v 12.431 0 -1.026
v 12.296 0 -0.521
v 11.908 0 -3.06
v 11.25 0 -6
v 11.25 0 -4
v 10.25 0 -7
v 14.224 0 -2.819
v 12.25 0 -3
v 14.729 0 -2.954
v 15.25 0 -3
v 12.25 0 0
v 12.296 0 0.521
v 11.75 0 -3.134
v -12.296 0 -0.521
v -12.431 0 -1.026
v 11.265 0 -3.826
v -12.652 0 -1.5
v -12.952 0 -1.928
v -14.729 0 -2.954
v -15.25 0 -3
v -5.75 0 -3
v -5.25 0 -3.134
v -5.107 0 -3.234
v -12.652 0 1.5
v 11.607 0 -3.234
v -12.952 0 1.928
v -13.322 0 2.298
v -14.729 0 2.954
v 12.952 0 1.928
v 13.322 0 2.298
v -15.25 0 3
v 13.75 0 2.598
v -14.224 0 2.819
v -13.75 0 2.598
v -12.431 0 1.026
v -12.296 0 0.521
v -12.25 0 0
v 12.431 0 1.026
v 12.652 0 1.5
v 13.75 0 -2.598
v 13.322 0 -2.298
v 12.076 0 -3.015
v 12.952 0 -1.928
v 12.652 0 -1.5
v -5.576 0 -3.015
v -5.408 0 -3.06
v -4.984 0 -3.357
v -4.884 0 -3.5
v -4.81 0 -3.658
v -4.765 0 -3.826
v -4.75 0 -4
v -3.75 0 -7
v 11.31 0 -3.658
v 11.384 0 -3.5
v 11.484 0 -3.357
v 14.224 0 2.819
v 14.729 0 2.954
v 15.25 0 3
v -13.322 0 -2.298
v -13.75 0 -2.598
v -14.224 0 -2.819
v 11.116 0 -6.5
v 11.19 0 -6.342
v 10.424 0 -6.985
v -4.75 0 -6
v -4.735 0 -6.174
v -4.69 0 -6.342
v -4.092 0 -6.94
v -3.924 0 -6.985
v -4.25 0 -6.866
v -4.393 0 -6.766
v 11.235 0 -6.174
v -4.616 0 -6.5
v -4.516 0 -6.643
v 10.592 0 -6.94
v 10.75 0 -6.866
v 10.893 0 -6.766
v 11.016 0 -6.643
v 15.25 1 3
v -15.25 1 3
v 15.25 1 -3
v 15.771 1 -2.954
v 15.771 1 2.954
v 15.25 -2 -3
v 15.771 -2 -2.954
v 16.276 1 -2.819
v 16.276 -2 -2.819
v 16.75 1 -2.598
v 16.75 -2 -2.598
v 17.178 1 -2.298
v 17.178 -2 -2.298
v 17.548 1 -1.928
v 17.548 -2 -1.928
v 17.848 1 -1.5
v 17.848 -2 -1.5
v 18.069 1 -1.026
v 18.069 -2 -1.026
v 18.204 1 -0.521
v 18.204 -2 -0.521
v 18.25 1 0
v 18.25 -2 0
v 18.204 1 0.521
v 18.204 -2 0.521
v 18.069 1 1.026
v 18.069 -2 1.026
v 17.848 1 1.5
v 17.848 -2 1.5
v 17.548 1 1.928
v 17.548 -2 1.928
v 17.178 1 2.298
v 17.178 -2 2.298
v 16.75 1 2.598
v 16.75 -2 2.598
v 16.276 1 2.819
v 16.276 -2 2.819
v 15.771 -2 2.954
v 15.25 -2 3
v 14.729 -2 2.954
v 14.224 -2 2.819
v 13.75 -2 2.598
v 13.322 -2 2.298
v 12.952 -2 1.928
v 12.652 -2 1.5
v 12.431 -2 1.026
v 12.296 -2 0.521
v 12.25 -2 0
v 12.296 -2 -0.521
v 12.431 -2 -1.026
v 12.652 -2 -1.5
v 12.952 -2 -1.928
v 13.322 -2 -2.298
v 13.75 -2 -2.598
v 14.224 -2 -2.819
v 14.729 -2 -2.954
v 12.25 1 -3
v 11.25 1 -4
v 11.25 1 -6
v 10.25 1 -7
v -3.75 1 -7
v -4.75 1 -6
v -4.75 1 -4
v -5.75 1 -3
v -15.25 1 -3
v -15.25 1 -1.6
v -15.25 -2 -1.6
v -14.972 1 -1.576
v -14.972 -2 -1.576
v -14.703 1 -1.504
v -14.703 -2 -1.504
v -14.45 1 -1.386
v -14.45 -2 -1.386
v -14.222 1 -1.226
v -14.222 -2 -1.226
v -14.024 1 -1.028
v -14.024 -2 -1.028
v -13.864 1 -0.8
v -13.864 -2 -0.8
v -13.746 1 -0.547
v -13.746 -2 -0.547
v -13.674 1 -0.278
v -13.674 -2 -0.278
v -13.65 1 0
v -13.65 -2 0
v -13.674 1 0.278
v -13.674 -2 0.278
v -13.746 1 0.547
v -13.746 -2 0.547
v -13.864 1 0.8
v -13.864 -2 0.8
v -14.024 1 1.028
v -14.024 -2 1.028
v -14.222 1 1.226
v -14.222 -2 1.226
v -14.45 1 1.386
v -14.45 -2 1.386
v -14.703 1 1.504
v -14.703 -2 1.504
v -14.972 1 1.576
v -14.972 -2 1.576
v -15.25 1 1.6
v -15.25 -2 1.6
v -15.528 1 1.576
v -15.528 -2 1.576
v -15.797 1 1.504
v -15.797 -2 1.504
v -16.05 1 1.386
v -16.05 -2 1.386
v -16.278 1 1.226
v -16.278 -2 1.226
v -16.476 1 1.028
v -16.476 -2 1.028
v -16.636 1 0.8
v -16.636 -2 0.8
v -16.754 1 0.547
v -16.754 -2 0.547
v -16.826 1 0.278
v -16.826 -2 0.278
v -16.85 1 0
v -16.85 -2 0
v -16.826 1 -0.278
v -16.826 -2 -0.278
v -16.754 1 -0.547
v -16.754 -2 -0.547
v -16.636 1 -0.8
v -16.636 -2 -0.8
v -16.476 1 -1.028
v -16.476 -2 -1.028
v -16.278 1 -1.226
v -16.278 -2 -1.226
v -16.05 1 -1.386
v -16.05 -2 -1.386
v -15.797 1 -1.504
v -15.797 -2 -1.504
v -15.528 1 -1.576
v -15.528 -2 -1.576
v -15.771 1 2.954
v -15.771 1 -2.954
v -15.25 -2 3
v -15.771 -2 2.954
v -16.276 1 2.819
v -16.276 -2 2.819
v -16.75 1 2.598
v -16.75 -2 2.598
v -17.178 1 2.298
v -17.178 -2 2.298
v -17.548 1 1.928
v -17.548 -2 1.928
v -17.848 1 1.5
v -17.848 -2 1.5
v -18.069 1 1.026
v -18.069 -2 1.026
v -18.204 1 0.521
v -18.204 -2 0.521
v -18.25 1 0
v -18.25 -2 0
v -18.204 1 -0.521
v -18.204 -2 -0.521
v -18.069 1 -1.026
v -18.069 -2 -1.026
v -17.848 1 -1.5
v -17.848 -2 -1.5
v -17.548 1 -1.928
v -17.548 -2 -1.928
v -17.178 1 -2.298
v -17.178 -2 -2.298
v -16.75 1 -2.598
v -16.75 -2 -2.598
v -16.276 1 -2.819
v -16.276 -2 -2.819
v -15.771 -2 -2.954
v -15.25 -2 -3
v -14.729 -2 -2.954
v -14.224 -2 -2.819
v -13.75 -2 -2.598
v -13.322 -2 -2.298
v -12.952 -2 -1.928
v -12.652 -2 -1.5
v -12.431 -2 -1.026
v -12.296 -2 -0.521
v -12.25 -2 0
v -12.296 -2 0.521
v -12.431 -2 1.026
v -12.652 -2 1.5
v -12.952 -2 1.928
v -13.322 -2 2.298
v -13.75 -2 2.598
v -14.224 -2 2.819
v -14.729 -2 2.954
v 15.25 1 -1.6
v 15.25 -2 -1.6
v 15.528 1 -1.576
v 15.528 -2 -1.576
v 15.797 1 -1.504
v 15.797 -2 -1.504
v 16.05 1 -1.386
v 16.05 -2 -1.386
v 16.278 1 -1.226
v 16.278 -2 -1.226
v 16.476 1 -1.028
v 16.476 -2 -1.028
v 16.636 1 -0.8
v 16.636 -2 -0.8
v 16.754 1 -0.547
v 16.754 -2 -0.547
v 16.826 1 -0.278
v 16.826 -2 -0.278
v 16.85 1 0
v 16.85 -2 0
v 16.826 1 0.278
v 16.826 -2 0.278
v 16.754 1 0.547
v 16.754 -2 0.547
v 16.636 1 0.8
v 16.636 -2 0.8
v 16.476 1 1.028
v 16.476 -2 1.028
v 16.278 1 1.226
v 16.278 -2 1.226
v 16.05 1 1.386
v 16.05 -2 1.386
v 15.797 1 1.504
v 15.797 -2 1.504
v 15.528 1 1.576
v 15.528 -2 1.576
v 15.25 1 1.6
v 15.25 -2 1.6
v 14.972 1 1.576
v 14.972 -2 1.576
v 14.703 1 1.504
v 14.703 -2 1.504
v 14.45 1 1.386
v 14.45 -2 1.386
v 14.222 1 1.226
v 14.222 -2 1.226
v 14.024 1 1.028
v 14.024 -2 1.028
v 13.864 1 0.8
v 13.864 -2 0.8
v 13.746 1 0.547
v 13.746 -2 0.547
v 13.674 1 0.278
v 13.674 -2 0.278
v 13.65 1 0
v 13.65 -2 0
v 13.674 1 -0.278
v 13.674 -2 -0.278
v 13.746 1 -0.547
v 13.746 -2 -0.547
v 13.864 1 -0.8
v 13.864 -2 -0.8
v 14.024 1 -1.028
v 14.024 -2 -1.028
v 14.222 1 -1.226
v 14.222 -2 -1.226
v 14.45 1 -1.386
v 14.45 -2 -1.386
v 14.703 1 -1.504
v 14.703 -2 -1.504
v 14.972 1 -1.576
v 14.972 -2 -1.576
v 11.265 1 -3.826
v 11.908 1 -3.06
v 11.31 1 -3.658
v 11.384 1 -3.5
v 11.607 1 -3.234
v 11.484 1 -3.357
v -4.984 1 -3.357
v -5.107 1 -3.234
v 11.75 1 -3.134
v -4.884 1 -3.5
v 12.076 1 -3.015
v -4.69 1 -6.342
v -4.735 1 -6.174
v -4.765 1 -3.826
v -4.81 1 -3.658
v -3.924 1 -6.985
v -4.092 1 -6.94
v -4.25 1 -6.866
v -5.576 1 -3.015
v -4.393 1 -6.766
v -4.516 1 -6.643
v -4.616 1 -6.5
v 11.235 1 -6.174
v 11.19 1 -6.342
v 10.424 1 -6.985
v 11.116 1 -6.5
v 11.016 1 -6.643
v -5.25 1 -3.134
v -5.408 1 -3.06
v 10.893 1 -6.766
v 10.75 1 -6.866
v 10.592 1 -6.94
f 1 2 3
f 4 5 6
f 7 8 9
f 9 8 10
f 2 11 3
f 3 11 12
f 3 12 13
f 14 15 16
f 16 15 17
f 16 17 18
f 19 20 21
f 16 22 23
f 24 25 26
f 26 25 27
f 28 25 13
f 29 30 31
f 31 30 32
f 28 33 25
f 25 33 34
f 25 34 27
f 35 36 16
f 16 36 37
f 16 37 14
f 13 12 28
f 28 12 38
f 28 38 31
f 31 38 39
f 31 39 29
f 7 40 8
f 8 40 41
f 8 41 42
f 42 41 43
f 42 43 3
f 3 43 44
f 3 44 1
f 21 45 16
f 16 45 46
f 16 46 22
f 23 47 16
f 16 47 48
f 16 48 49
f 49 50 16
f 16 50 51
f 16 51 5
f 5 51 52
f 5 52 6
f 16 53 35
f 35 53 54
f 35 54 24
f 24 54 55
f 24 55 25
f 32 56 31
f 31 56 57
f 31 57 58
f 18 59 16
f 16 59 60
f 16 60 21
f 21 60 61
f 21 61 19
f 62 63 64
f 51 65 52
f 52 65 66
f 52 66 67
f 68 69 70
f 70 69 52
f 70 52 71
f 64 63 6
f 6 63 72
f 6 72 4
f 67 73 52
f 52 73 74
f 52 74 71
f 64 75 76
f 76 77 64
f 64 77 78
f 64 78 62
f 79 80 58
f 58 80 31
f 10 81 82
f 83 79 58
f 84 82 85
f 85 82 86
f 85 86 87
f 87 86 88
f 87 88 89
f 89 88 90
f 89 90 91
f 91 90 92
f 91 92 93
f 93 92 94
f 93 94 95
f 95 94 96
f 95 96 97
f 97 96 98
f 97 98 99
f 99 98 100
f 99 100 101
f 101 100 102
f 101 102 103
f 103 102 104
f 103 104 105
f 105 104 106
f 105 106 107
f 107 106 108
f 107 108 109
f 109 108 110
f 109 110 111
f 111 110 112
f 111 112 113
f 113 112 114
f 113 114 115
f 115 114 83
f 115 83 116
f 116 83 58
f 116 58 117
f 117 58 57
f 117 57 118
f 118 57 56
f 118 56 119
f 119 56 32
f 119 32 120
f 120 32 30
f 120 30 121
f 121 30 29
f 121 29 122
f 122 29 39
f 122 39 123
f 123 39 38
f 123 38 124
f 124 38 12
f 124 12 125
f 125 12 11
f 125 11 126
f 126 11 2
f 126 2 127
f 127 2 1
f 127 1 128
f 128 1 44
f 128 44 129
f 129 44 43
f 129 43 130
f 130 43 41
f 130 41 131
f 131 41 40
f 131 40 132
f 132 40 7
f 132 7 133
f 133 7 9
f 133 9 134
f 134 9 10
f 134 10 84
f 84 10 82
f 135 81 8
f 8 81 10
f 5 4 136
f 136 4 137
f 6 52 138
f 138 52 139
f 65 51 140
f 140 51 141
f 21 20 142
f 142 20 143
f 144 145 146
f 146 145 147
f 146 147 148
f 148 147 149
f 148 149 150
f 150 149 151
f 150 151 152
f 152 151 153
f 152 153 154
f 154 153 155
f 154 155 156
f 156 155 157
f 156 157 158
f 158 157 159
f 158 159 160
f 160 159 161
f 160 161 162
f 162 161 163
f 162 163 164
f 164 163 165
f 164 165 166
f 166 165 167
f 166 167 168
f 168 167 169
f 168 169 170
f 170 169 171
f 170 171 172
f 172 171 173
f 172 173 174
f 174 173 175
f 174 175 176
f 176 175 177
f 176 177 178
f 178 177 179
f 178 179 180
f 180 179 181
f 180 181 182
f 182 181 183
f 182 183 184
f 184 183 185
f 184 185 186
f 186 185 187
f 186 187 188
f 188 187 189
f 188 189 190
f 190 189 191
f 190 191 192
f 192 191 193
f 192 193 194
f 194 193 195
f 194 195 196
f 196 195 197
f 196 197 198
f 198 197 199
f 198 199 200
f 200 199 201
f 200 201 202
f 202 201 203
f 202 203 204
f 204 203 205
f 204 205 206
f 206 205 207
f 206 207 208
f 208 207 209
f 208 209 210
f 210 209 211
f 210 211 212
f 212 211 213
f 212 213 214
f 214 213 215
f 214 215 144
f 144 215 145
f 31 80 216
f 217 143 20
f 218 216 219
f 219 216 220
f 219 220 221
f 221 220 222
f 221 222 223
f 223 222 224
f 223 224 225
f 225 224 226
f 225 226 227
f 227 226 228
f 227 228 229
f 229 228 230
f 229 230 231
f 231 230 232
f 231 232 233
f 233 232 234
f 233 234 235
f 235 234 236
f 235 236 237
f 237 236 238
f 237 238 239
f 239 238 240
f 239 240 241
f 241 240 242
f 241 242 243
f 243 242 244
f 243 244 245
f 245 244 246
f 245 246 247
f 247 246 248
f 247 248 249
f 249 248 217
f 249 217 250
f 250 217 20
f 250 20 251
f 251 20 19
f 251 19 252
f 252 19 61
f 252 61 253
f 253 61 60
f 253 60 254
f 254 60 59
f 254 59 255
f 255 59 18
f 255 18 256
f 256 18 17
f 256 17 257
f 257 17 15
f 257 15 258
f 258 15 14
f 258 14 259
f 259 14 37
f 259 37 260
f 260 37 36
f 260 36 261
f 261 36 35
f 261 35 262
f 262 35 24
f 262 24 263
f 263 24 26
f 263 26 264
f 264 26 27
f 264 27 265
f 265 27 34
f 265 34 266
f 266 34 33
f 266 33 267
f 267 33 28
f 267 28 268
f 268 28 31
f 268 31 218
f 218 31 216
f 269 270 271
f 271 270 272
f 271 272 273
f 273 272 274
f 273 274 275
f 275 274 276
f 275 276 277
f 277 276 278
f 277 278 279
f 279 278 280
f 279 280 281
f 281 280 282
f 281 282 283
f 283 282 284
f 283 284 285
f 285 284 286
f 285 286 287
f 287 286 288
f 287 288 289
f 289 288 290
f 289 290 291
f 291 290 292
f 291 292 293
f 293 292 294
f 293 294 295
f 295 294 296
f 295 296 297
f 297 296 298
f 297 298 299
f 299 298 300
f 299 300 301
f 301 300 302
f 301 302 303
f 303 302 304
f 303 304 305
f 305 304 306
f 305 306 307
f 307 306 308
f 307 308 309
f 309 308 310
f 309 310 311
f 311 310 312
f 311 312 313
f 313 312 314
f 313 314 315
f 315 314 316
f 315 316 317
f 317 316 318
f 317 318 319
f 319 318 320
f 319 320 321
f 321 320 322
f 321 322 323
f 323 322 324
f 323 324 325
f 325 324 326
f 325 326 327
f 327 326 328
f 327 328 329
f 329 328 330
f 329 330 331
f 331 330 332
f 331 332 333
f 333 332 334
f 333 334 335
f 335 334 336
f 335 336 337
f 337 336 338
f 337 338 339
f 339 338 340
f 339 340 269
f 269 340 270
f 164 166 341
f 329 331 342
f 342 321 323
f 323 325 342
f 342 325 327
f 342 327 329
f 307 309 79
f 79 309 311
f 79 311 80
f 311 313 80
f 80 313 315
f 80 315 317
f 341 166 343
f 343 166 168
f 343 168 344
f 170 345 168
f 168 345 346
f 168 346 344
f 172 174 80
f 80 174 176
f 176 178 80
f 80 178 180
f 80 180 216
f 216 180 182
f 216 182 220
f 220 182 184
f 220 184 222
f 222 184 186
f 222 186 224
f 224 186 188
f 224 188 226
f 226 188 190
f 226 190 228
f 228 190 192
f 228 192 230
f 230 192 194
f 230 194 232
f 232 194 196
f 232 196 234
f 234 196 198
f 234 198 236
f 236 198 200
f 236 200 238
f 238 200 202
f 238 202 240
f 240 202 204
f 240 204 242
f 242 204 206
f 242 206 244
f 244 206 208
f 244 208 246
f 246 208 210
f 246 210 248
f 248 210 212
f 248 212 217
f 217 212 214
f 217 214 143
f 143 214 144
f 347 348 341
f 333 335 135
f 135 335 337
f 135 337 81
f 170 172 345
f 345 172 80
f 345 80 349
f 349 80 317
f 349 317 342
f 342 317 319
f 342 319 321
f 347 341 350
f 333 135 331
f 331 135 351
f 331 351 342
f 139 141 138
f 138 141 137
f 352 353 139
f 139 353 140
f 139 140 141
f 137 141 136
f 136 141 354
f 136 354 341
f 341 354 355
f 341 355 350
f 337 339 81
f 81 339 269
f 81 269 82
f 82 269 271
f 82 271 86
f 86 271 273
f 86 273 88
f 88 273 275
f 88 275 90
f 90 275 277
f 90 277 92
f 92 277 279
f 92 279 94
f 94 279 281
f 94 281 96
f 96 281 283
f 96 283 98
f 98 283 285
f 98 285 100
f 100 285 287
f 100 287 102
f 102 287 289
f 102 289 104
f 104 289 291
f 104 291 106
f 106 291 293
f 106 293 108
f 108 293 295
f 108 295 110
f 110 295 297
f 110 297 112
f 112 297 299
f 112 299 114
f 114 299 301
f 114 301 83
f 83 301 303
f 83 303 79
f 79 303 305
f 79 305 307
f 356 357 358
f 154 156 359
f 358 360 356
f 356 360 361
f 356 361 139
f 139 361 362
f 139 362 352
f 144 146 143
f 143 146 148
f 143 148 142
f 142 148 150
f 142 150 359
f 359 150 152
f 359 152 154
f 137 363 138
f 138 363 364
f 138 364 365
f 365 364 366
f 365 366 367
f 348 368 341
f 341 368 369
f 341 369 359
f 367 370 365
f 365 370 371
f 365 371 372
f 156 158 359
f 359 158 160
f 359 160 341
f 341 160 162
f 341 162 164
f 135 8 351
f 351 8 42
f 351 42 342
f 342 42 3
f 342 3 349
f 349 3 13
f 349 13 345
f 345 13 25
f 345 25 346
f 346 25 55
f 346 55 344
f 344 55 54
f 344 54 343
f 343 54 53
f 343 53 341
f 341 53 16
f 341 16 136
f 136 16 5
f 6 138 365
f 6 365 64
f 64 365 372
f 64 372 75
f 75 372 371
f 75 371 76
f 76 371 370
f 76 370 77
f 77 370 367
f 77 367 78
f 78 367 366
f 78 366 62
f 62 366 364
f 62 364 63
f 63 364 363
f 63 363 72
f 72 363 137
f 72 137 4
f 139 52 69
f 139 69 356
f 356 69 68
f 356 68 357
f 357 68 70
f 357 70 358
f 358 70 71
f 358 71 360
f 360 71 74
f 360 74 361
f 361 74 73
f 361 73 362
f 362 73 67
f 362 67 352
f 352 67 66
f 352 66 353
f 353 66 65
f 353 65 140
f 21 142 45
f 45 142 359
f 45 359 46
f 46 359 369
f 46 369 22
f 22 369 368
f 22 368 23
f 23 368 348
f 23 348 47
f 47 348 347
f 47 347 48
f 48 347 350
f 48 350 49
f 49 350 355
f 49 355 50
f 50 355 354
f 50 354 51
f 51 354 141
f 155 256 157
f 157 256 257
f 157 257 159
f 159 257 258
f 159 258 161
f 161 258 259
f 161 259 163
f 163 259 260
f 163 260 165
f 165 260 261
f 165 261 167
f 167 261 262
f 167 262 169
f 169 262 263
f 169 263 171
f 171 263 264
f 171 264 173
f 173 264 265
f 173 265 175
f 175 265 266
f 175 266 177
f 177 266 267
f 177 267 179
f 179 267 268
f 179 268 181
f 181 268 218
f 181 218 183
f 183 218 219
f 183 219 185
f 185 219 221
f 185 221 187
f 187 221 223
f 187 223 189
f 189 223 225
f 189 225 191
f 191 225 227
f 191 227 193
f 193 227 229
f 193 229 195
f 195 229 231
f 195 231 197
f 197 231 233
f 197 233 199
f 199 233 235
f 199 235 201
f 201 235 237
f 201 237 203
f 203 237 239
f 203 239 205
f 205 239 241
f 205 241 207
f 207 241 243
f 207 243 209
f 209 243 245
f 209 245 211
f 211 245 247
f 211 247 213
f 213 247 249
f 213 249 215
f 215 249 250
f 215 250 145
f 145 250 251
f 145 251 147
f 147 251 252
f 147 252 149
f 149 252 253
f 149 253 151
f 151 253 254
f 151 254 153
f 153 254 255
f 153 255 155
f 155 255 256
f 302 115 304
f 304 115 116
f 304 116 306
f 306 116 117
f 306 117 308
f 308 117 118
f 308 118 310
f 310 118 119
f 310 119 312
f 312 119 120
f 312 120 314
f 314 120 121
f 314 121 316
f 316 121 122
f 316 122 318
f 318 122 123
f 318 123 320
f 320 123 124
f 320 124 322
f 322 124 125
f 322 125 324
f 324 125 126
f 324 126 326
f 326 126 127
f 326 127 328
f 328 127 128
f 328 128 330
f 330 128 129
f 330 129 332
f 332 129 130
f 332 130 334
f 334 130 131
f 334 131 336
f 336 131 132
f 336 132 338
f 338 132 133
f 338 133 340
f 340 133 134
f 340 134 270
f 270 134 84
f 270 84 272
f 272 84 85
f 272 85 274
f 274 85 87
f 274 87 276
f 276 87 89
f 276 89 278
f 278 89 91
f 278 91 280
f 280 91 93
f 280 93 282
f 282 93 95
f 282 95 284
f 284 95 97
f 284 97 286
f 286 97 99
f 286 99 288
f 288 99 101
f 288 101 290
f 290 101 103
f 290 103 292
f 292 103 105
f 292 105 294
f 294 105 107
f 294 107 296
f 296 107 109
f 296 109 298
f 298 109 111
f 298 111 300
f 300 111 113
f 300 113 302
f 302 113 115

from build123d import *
from build123d.topology import SkipClean

# Parameters (mm, degrees)
SKETCH1_W           = 16
SKETCH1_H           = 6
SKETCH1_H_2         = 4
SKETCH1_R           = 1.6
BOSS_EXTRUDE1_DEPTH = 1
FILLET1_R           = 1
BOSS_EXTRUDE2_START = 2
SKETCH2_R           = 3
SKETCH2_R_2         = 1.6
BOSS_EXTRUDE2_DEPTH = 2


with BuildPart() as part:
    # Sketch1 → Boss-Extrude1 (new body)
    # profile 1 of 4: a face of its own
    with BuildSketch(Plane(origin=(0, 0, 0), x_dir=(1, 0, 0), z_dir=(0, 1, 0))):
        with Locations((3.25, 0)):
            Rectangle(SKETCH1_W, SKETCH1_H)
    # profile 2 of 4: a face of its own
    with BuildSketch(Plane(origin=(0, 0, 0), x_dir=(1, 0, 0), z_dir=(0, 1, 0))):
        with Locations((3.25, 5)):
            Rectangle(SKETCH1_W, SKETCH1_H_2)
    # profile 3 of 4: a face of its own
    with BuildSketch(Plane(origin=(0, 0, 0), x_dir=(1, 0, 0), z_dir=(0, 1, 0))):
        with BuildLine():
            Line((-4.75, 3), (-15.25, 3))
            ThreePointArc((-15.25, 3), (-18.25, 0), (-15.25, -3))
            Line((-15.25, -3), (-4.75, -3))
            Line((-4.75, -3), (-4.75, 3))
        make_face()
        with Locations(Location((-15.25, 0, 0), (0, 0, 270))):
            Circle(SKETCH1_R, mode=Mode.SUBTRACT)
    # profile 4 of 4: a face of its own
    with BuildSketch(Plane(origin=(0, 0, 0), x_dir=(1, 0, 0), z_dir=(0, 1, 0))):
        with BuildLine():
            Line((15.25, 3), (11.25, 3))
            Line((11.25, 3), (11.25, -3))
            Line((11.25, -3), (15.25, -3))
            ThreePointArc((15.25, -3), (18.25, 0), (15.25, 3))
        make_face()
        with Locations(Location((15.25, 0, 0), (0, 0, 270))):
            Circle(SKETCH1_R, mode=Mode.SUBTRACT)
    extrude(amount=BOSS_EXTRUDE1_DEPTH)

    # Fillet1
    fillet1_edges = [part.edges().sort_by_distance(p)[0] for p in [
        (-4.75, 0.5, -3),
        (-4.75, 0.5, -7),
        (11.25, 0.5, -7),
        (11.25, 0.5, -3),
    ]]
    fillet(fillet1_edges, radius=FILLET1_R)

    # Sketch2 → Boss-Extrude2 (add)
    # profile 1 of 2: a face of its own
    with SkipClean():  # the faces are left unmerged after this step: merging them gives an invalid solid
        with BuildSketch(Plane.XZ.offset(BOSS_EXTRUDE2_START)):
            with Locations(Location((-15.25, 0, 0), (0, 0, 270))):
                Circle(SKETCH2_R)
            with Locations(Location((-15.25, 0, 0), (0, 0, 270))):
                Circle(SKETCH2_R_2, mode=Mode.SUBTRACT)
        # profile 2 of 2: a face of its own
        with BuildSketch(Plane.XZ.offset(BOSS_EXTRUDE2_START)):
            with Locations(Location((15.25, 0, 0), (0, 0, 270))):
                Circle(SKETCH2_R)
            with Locations(Location((15.25, 0, 0), (0, 0, 270))):
                Circle(SKETCH2_R_2, mode=Mode.SUBTRACT)
        extrude(amount=-BOSS_EXTRUDE2_DEPTH)


solid = part.part
